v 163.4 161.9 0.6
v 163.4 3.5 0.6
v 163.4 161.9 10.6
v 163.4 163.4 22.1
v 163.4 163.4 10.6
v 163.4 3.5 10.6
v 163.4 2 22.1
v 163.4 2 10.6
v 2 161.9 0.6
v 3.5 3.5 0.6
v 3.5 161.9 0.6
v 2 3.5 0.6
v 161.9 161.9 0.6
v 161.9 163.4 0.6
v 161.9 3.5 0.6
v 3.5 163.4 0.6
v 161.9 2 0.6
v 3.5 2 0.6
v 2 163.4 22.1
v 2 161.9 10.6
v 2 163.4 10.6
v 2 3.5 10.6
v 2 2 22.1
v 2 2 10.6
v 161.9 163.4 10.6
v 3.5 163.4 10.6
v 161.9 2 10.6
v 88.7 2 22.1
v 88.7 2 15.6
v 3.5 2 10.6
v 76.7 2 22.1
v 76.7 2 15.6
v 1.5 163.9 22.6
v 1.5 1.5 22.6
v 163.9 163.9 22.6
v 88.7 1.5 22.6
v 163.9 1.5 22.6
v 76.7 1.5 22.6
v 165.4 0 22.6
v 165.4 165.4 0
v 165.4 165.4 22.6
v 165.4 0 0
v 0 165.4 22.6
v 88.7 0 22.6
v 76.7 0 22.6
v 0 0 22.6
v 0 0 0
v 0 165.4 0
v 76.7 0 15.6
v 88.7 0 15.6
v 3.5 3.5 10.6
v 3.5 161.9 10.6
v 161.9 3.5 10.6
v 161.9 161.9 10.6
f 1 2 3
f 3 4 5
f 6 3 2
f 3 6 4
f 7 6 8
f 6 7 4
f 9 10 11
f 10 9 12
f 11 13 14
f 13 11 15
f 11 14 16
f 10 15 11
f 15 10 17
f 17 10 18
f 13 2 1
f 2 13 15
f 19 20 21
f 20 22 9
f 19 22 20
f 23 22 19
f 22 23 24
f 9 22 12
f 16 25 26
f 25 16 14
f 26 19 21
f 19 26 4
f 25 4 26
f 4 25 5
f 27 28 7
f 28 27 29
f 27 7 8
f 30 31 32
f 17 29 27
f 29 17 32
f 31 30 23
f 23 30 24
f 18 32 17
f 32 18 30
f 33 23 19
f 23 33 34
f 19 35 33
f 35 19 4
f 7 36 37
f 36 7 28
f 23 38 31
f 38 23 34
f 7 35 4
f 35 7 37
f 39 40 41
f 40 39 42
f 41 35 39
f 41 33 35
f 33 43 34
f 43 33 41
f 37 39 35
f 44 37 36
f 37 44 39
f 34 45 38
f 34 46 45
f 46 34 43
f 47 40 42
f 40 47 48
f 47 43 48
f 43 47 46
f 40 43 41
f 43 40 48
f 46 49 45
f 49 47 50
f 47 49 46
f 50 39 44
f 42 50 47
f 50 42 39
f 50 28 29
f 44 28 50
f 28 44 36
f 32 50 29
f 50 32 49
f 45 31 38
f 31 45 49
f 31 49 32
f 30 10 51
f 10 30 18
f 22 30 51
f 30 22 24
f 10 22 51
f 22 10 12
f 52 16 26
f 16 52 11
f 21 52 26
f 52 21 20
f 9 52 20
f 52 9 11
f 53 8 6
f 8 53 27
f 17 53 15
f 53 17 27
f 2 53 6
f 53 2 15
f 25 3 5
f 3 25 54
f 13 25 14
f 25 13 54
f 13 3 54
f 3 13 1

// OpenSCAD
// Front / outer cap with a centred USB notch and a tighter slip fit.
// All dimensions are in millimetres.

rear_outer_size = 161;
clearance_per_side = 0.2;
cap_plate_thickness = 0.6;
cap_wall_thickness = 2;
cap_skirt_depth = 22;
entry_chamfer = 0.5;

cap_inner_size = rear_outer_size + 2 * clearance_per_side; // 161.4 mm
cap_outer_size = cap_inner_size + 2 * cap_wall_thickness;   // 165.4 mm
cap_height = cap_plate_thickness + cap_skirt_depth;         // 22.6 mm

usb_width = 12;
usb_depth = 7;
usb_center_x = cap_outer_size / 2; // 82.7 mm in this part

module cap_cavity_with_entry_chamfer() {
    union() {
        // Main straight cavity.
        translate([
            cap_wall_thickness,
            cap_wall_thickness,
            cap_plate_thickness
        ])
            cube([
                cap_inner_size,
                cap_inner_size,
                cap_skirt_depth - entry_chamfer + 0.01
            ]);

        // 0.5 mm lead-in chamfer at the open edge.
        hull() {
            translate([
                cap_wall_thickness,
                cap_wall_thickness,
                cap_height - entry_chamfer
            ])
                cube([cap_inner_size, cap_inner_size, 0.01]);

            translate([
                cap_wall_thickness - entry_chamfer,
                cap_wall_thickness - entry_chamfer,
                cap_height
            ])
                cube([
                    cap_inner_size + 2 * entry_chamfer,
                    cap_inner_size + 2 * entry_chamfer,
                    0.01
                ]);
        }
    }
}

module original_cap() {
 difference() {
    cube([cap_outer_size, cap_outer_size, cap_height]);
    cap_cavity_with_entry_chamfer();

    // Matching U-shaped USB opening on the bottom/front wall.
    translate([
        usb_center_x - usb_width / 2,
        -0.1,
        cap_height - usb_depth
    ])
        cube([usb_width, cap_wall_thickness + 0.2, usb_depth + 0.1]);
}

}

stop_width = 1.5;
stop_rise = 10.0;
stop_top_z = cap_plate_thickness + stop_rise; // 10.6
rear_insertion = cap_height - stop_top_z; // 12.0
assert(stop_rise > 0);
module corner_stops() {
    for (x = [cap_wall_thickness, cap_outer_size-cap_wall_thickness-stop_width])
        for (y = [cap_wall_thickness, cap_outer_size-cap_wall_thickness-stop_width])
            translate([x,y,cap_plate_thickness])
                cube([stop_width,stop_width,stop_rise]);
}
union() {
    original_cap();
    corner_stops();
}
